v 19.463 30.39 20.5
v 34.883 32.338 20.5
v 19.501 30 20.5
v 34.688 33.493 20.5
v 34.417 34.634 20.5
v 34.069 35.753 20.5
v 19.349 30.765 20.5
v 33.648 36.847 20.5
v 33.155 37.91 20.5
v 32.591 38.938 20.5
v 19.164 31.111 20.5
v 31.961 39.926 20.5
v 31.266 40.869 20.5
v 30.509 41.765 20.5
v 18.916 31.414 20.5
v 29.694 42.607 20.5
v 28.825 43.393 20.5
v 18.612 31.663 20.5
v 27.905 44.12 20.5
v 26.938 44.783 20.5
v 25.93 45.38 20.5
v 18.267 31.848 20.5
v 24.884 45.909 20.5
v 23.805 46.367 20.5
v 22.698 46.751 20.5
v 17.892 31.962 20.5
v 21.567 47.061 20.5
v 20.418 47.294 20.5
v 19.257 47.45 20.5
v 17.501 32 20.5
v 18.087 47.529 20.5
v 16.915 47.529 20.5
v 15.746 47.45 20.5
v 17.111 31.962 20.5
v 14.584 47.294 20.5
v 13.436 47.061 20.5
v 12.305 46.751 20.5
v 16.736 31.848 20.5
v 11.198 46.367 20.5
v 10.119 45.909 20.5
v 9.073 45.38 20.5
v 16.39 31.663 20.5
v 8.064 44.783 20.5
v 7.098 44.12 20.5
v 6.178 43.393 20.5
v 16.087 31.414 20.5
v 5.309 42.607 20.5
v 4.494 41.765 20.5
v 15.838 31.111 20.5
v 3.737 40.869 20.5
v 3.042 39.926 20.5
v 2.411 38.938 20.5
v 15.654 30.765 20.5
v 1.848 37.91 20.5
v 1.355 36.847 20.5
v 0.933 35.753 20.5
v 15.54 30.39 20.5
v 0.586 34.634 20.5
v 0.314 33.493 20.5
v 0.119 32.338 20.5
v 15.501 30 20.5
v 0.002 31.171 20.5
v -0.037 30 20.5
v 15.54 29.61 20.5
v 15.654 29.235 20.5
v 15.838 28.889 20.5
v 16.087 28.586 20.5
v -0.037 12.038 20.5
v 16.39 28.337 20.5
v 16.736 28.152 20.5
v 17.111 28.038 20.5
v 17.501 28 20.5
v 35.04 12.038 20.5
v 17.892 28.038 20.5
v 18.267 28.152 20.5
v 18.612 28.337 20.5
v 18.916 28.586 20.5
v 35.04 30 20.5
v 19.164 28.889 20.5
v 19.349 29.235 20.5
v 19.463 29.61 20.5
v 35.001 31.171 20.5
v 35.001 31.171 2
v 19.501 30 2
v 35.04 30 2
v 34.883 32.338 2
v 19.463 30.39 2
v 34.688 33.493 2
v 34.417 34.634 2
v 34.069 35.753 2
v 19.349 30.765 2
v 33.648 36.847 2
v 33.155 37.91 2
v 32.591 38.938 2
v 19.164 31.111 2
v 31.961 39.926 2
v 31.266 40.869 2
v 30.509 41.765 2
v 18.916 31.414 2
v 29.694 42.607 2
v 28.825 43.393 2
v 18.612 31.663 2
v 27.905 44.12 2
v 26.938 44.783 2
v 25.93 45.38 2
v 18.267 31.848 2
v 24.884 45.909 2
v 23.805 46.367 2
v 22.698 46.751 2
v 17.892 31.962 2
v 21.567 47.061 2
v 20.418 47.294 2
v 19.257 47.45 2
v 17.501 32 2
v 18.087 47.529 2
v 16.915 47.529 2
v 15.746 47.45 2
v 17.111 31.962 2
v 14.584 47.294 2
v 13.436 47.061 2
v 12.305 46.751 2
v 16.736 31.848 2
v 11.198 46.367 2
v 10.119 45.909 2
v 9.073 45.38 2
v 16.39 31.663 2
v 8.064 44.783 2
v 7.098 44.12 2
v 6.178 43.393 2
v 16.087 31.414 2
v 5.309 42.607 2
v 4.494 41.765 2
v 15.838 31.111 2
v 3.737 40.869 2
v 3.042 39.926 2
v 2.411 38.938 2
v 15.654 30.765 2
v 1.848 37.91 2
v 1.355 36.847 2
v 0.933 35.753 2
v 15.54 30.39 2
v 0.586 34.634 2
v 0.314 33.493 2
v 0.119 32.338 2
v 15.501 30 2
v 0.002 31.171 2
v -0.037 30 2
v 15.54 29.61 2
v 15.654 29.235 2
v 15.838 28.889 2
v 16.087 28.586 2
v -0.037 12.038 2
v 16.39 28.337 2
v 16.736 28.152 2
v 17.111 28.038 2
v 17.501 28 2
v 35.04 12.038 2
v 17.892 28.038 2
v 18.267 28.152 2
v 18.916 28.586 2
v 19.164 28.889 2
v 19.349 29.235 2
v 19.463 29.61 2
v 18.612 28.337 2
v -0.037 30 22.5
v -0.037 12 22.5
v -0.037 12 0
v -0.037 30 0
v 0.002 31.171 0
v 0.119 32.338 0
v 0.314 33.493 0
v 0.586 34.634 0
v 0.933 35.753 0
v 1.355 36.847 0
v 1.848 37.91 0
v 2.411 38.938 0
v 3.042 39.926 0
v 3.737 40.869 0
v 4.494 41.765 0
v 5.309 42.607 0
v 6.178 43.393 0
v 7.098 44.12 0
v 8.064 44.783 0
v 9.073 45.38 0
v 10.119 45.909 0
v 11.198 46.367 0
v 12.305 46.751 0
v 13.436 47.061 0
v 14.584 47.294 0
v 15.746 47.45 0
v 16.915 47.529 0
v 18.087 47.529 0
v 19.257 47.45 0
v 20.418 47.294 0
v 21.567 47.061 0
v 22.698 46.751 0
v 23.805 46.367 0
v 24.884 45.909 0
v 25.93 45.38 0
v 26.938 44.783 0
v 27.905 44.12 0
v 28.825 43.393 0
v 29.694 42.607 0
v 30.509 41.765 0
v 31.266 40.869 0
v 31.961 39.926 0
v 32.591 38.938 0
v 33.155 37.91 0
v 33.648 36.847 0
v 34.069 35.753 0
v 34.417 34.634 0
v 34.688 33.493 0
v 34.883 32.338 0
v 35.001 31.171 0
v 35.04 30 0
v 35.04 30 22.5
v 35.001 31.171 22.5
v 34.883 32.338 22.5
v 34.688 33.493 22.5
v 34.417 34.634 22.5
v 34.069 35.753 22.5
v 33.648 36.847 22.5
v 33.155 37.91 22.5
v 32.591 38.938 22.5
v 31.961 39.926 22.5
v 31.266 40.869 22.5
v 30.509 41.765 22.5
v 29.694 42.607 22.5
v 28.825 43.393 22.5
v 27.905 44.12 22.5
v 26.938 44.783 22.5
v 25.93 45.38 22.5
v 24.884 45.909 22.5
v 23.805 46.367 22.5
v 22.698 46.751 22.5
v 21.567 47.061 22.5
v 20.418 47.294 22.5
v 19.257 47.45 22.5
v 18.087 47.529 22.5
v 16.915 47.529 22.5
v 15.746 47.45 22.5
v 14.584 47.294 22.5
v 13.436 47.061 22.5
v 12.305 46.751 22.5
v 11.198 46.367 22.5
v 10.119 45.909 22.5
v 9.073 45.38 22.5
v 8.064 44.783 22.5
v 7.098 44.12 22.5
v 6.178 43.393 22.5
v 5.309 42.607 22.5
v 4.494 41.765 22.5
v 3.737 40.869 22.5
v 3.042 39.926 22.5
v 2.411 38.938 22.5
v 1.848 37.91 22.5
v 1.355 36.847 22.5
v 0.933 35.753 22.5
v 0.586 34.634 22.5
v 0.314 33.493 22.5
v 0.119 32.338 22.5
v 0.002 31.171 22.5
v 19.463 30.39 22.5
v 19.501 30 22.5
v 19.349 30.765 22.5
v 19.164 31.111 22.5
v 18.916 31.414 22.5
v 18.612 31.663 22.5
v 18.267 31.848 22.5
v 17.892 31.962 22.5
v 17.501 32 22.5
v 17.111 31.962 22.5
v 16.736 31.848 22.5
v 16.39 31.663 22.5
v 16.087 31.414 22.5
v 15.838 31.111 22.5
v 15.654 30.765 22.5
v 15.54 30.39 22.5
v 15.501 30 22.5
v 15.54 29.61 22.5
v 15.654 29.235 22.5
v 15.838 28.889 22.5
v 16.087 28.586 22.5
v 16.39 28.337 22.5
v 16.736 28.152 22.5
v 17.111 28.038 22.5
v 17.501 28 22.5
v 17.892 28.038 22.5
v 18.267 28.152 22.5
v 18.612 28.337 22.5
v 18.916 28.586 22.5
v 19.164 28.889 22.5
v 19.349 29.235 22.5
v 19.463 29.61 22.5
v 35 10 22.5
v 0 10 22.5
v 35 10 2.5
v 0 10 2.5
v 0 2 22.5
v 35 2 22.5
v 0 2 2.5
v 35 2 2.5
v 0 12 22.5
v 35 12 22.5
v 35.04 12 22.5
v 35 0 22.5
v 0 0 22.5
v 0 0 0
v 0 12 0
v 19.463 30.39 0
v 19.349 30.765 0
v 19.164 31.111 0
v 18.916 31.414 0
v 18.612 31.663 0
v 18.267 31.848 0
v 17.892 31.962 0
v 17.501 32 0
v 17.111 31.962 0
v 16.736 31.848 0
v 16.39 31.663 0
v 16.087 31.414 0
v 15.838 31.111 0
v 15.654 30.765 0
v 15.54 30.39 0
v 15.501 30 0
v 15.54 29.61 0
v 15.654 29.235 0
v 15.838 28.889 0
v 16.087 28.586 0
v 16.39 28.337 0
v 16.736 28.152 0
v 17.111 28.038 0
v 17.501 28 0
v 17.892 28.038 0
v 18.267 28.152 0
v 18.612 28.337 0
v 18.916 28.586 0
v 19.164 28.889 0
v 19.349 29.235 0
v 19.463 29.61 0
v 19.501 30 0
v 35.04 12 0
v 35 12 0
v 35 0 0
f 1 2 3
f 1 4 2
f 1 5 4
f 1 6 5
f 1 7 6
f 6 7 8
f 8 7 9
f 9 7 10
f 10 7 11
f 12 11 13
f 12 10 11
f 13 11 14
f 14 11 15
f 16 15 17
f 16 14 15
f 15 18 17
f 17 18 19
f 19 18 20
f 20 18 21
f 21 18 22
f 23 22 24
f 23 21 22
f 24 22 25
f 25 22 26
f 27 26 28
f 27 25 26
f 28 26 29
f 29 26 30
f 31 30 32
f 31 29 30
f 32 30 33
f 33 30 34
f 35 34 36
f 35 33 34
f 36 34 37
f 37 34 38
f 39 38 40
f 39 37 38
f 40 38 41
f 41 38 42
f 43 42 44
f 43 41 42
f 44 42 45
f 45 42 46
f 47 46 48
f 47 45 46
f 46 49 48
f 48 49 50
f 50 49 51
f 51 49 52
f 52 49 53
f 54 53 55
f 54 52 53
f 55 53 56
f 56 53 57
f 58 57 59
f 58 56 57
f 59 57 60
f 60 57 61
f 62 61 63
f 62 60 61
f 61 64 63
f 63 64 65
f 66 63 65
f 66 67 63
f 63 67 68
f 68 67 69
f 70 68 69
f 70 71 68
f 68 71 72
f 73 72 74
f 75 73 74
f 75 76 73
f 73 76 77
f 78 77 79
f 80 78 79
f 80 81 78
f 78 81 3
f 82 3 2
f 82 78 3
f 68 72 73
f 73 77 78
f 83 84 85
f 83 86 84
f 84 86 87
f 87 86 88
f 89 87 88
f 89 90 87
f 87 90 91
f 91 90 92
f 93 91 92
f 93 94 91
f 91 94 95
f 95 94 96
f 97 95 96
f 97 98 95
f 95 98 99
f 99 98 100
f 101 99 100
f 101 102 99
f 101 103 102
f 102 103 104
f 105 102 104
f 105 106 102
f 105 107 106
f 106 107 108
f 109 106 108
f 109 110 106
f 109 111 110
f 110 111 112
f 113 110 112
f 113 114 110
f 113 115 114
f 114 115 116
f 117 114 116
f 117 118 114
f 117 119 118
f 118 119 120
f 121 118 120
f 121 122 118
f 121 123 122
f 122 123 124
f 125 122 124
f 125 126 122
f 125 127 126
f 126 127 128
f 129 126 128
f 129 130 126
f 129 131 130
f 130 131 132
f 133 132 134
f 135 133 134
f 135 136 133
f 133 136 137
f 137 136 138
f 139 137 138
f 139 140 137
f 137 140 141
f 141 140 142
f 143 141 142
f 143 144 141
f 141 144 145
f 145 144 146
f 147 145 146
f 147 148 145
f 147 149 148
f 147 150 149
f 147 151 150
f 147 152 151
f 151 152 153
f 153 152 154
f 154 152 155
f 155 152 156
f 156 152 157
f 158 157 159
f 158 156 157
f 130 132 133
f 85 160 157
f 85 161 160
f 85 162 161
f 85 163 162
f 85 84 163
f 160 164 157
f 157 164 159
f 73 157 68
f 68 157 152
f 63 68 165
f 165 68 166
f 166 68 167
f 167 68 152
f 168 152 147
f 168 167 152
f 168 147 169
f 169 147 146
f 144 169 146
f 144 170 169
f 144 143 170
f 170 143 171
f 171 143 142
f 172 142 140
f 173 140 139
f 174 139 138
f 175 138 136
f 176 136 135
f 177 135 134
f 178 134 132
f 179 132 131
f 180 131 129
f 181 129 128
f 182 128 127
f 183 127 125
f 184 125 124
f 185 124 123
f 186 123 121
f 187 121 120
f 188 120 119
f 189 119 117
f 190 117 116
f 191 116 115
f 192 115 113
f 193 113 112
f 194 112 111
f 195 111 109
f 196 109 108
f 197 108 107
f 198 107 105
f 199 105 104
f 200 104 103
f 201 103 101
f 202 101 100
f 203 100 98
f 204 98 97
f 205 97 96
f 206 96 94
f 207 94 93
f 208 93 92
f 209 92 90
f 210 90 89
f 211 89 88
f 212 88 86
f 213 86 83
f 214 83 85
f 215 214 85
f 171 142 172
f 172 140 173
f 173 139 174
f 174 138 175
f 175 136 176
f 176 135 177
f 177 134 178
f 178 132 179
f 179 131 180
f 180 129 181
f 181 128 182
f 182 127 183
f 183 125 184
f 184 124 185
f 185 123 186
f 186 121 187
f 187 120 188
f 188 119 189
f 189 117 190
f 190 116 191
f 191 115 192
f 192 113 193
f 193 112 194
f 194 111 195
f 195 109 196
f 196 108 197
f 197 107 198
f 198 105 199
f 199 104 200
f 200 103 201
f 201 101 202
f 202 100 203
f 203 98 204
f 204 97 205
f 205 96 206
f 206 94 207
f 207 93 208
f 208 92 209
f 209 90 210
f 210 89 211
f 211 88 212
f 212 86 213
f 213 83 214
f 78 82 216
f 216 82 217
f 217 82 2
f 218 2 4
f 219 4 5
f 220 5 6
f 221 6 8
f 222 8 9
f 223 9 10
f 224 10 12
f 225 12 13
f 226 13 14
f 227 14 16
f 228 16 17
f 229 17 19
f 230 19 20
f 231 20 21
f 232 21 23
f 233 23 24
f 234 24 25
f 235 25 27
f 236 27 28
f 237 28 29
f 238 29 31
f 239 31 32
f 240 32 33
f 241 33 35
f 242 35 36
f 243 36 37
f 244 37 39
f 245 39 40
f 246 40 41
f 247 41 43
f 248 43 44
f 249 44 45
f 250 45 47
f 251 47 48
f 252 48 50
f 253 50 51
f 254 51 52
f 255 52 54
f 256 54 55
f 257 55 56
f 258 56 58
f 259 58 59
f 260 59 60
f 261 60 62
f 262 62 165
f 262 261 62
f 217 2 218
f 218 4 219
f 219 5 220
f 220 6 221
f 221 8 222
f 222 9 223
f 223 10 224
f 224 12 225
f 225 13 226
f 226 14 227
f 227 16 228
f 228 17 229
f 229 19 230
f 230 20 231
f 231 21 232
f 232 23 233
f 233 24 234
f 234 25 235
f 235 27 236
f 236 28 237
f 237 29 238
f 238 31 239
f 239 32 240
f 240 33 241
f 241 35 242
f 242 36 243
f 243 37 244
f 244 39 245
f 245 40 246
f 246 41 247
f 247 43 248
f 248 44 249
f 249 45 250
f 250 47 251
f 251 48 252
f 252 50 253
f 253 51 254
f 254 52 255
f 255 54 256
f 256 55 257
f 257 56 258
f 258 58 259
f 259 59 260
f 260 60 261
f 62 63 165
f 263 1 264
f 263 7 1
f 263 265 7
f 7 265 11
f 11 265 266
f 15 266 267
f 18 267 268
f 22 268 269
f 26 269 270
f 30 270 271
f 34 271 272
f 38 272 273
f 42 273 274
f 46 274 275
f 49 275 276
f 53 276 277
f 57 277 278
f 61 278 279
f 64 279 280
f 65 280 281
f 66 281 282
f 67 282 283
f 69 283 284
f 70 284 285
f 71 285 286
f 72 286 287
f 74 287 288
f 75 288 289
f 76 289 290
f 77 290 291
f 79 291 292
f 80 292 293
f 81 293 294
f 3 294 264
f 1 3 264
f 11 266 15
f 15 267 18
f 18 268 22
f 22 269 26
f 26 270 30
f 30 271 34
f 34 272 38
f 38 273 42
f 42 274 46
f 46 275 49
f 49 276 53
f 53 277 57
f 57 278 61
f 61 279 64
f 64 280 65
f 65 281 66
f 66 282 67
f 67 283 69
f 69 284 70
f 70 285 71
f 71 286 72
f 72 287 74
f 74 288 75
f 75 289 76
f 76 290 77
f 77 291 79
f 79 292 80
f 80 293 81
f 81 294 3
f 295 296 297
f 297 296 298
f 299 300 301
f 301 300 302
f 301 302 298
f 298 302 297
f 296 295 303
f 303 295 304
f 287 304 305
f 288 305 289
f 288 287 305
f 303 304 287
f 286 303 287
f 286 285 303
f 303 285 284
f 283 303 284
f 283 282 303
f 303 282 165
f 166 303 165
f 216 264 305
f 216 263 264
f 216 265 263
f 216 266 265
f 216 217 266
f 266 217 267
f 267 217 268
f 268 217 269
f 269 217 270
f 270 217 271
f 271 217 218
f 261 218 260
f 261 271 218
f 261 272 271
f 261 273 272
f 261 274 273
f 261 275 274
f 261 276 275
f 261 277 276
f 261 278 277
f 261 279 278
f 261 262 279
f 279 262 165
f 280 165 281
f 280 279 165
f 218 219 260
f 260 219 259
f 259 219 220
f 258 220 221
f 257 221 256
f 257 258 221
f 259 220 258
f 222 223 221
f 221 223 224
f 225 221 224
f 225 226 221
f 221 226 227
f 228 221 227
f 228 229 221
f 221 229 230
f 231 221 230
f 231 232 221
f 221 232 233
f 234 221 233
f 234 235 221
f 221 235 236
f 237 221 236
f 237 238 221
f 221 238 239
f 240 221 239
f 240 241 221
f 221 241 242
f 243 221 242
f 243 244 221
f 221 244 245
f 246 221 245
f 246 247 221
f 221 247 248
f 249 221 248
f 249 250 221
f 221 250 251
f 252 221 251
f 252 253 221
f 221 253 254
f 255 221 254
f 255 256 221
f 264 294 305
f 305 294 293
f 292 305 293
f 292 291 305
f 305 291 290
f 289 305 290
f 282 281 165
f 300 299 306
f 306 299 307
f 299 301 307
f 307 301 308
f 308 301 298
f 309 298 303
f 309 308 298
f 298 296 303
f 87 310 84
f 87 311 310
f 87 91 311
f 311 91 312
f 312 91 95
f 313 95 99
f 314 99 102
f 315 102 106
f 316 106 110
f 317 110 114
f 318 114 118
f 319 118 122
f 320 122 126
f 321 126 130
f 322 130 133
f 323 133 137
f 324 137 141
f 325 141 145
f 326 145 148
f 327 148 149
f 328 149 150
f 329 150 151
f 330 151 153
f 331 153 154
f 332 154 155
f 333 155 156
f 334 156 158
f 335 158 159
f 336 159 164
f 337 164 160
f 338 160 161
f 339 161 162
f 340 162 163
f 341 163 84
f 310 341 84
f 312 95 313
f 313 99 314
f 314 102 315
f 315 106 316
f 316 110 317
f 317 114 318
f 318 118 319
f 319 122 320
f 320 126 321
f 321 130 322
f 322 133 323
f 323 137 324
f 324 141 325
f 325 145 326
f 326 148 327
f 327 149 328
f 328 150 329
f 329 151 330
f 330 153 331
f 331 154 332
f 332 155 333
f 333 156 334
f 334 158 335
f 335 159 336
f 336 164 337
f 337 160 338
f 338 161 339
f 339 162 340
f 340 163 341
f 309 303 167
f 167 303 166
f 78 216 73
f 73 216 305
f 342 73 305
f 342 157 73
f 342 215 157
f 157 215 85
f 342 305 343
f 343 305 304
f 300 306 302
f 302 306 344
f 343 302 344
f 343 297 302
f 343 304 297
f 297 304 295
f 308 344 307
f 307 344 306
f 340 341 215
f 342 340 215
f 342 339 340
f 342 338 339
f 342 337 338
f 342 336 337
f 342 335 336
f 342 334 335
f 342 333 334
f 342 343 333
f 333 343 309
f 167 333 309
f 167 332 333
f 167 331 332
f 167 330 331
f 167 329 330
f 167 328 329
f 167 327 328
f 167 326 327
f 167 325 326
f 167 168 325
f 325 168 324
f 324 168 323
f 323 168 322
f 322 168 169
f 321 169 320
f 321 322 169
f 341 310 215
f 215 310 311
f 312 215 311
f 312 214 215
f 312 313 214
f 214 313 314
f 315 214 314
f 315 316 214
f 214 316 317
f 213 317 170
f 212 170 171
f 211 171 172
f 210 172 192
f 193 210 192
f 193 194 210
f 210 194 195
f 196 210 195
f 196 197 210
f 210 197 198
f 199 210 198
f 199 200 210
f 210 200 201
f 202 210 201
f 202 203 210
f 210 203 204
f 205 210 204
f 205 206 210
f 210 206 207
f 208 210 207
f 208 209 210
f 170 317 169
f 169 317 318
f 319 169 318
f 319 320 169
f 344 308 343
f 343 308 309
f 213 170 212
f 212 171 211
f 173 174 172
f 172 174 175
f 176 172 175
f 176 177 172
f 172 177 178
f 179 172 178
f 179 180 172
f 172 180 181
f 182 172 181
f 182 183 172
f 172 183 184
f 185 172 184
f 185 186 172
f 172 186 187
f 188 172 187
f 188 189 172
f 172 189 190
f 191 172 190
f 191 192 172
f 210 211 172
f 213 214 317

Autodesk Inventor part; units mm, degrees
ref_plane "YZ Plane" through (0, 0, 0) normal (1, 0, 0) x (0, 1, 0)
ref_plane "XZ Plane" through (0, 0, 0) normal (0, 1, 0) x (-1, 0, 0)
ref_plane "XY Plane" through (0, 0, 0) normal (0, 0, 1) x (1, 0, 0)
sketch "Sketch1" plane through (0, 0, 0) normal (0, 0, 1) x (1, 0, 0)
  line L0 (0, 0) -> (35, 0)
  line L1 (35, 0) -> (35, 12)
  line L2 (0, 12) -> (0, 0)
  line L3 (0, 12) -> (-0.0372, 12)
  line L4 (35.0398, 12) -> (35, 12)
  line L5 (-0.0372, 12) -> (-0.0372, 30)
  line L6 (35.0398, 12) -> (35.0398, 30)
  arc A0 (35.0398, 30) -> (-0.0372, 30) centre (17.5013, 30) ccw
  circle A1 centre (17.5013, 30) radius 2
  dimension "d0" = 35
  dimension "d1" = 12
  dimension "d4" = 18
  dimension "d6" = 4
extrude "Extrusion1" add sketch "Sketch1" along normal blind 22.5
sketch "Sketch2" plane through (0, 0, 22.5) normal (0, 0, 1) x (1, 0, 0)
  line L0 (0, 2) -> (35, 2)
  line L1 (35, 2) -> (35, 10)
  line L2 (35, 10) -> (0, 10)
  line L3 (0, 10) -> (0, 2)
  point P0 (0, 0)
extrude "Extrusion2" cut sketch "Sketch2" against normal blind 20
sketch "Sketch3" plane through (-0.0372, 12, 0) normal (-1, 0, 0) x (0, 0, 1)
  point P0 (0, -12)
ref_plane "Work Plane1" through (17.5013, 47.5385, 0) normal (0, -1, 0) x (1, 0, 0)
sketch "Sketch4" plane through (17.5013, 47.5385, 0) normal (0, -1, 0) x (1, 0, 0)
  line L0 (17.5385, 0) -> (17.5385, 22.5) projected
  line L1 (-17.5385, 0) -> (-17.5385, 22.5) projected
  line L2 (17.5385, 20.5) -> (-17.5385, 20.5)
  line L3 (-17.5385, 20.5) -> (-17.5385, 2)
  line L4 (-17.5385, 2) -> (17.5385, 2)
  line L5 (17.5385, 2) -> (17.5385, 20.5)
  line L6 (17.5385, 22.5) -> (-17.5385, 22.5) projected
  point P0 (-17.5013, 0)
  dimension "d11" = 18.5
  dimension "d12" = 2
extrude "Extrusion3" cut sketch "Sketch4" along normal blind 35.5 contours L4 L1 L2 L0
properties part number "Maintients poullies V4"
